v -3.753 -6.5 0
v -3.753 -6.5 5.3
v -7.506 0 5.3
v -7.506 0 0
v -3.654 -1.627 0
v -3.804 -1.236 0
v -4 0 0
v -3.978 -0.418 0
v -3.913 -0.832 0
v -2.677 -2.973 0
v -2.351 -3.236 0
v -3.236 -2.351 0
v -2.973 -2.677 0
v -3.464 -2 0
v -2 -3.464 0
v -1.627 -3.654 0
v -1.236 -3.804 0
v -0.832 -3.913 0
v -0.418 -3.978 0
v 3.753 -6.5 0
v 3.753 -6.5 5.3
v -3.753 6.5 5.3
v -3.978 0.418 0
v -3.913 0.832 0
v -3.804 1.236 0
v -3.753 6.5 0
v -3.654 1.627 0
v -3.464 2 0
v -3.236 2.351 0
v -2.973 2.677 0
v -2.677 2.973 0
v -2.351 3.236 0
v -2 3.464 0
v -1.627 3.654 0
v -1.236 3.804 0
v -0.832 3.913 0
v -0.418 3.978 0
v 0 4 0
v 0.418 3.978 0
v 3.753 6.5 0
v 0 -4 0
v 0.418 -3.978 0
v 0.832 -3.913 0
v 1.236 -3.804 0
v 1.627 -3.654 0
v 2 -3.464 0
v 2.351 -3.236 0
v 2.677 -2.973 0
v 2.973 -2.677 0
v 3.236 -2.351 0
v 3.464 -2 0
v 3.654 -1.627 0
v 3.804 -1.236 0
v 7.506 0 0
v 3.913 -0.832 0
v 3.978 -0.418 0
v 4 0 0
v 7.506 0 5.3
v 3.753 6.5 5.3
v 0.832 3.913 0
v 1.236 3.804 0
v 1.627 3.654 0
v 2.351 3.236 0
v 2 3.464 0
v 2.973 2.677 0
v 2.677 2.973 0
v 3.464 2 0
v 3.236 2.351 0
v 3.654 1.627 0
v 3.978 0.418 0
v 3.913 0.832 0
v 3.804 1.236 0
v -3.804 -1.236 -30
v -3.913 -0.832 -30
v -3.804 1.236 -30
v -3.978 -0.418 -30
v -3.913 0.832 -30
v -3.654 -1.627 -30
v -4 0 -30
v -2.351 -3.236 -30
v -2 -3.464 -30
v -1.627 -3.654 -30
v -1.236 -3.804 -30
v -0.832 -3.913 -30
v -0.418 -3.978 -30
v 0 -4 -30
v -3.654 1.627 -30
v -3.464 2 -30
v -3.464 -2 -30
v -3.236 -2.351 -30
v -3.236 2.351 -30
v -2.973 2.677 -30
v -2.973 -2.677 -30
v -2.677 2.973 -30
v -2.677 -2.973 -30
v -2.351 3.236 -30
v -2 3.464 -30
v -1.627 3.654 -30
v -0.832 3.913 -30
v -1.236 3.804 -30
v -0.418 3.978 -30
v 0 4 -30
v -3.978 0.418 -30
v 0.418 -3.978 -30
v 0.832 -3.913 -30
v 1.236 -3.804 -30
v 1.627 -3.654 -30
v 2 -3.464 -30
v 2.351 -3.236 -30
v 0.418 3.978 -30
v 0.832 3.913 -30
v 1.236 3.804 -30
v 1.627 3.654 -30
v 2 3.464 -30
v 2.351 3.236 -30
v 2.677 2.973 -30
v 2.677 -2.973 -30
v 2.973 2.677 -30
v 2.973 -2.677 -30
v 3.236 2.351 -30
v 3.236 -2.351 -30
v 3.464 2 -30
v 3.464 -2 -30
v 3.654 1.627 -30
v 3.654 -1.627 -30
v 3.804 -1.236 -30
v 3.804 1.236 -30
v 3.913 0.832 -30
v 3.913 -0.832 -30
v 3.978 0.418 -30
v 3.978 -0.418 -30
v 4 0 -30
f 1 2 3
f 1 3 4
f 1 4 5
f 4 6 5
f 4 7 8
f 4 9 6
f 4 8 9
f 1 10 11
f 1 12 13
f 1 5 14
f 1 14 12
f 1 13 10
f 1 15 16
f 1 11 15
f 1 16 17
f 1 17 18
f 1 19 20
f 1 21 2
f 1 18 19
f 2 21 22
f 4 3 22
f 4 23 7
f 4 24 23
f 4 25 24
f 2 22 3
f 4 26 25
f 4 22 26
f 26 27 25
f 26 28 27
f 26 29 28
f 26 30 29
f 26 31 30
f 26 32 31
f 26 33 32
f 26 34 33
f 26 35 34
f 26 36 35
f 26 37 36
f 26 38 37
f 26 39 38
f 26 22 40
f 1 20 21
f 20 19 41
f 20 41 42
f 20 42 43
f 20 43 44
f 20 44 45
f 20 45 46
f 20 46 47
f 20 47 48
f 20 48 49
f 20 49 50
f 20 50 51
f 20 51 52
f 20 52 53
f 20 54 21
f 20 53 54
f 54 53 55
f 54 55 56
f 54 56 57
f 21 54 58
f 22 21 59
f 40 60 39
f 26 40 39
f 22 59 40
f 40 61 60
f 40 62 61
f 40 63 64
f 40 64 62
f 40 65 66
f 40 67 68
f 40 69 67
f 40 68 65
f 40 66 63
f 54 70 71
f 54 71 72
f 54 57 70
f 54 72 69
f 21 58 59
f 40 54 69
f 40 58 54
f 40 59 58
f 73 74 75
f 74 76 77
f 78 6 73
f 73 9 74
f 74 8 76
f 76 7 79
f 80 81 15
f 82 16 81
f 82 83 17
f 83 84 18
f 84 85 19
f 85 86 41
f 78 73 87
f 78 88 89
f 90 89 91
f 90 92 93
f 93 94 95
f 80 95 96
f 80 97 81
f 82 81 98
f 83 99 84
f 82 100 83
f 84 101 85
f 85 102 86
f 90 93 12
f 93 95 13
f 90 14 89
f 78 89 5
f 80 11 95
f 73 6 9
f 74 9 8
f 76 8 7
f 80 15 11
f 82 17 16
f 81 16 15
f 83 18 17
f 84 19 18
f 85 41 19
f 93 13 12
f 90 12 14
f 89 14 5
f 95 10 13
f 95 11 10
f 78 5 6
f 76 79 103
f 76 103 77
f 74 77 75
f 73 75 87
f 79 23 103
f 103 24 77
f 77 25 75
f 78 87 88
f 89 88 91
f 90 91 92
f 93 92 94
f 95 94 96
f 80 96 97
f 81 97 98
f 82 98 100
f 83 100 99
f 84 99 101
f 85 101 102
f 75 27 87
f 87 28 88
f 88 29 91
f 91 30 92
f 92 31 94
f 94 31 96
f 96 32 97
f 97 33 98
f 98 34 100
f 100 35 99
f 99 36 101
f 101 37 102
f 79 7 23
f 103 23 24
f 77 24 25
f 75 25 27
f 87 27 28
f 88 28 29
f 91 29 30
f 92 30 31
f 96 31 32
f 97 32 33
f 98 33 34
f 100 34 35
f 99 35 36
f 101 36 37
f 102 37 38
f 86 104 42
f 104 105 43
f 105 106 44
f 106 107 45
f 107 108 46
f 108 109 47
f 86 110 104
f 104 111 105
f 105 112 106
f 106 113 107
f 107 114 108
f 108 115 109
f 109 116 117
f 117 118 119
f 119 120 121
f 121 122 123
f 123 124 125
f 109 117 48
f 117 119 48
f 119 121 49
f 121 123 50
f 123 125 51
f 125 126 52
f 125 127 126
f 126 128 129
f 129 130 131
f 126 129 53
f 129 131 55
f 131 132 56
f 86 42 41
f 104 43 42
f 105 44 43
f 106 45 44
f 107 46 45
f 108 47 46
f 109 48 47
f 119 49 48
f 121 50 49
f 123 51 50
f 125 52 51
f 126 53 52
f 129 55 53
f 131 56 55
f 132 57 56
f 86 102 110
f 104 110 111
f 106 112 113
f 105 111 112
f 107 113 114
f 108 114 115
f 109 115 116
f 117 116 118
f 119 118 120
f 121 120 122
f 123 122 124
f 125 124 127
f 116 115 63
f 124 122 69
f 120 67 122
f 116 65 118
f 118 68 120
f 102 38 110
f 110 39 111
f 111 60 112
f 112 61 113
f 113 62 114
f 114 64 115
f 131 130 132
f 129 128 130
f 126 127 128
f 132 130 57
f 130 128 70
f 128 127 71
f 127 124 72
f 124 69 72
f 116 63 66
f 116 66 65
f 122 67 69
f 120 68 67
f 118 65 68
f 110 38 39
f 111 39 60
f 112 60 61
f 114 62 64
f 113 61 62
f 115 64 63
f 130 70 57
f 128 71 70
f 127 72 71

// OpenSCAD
// M8 六角ボルト (JIS規格ベース、ねじ山省略)
// 対辺距離: 13mm, 頭部高さ: 5.3mm, 軸径: 8mm, 軸長: 30mm

$fn = 60; // 円の滑らかさ

// 寸法定義
af = 13;              // 対辺距離 (Across Flats)
head_height = 5.3;    // 頭部の高さ
shank_dia = 8;        // シャンク(軸)の直径
shank_length = 30;    // シャンクの長さ

// 六角形の外接円の直径 (R = 対辺距離 / √3)
// OpenSCADのcylinder(r=..., $fn=6) は外接円半径を指定するため、
// 対辺距離(af)から外接円半径を計算する: r = (af / 2) / cos(30°) = af / √3
corner_dia = af / cos(30);

module m8_bolt() {
    // 1. 六角頭部 (Z軸正方向へ構築: z = 0 から +5.3 まで)
    cylinder(h = head_height, r = corner_dia / 2, $fn = 6);

    // 2. シャンク(軸部) (Z軸負方向へ構築: z = -30 から 0 まで)
    translate([0, 0, -shank_length])
        cylinder(h = shank_length, r = shank_dia / 2);
}

// 実行
m8_bolt();
